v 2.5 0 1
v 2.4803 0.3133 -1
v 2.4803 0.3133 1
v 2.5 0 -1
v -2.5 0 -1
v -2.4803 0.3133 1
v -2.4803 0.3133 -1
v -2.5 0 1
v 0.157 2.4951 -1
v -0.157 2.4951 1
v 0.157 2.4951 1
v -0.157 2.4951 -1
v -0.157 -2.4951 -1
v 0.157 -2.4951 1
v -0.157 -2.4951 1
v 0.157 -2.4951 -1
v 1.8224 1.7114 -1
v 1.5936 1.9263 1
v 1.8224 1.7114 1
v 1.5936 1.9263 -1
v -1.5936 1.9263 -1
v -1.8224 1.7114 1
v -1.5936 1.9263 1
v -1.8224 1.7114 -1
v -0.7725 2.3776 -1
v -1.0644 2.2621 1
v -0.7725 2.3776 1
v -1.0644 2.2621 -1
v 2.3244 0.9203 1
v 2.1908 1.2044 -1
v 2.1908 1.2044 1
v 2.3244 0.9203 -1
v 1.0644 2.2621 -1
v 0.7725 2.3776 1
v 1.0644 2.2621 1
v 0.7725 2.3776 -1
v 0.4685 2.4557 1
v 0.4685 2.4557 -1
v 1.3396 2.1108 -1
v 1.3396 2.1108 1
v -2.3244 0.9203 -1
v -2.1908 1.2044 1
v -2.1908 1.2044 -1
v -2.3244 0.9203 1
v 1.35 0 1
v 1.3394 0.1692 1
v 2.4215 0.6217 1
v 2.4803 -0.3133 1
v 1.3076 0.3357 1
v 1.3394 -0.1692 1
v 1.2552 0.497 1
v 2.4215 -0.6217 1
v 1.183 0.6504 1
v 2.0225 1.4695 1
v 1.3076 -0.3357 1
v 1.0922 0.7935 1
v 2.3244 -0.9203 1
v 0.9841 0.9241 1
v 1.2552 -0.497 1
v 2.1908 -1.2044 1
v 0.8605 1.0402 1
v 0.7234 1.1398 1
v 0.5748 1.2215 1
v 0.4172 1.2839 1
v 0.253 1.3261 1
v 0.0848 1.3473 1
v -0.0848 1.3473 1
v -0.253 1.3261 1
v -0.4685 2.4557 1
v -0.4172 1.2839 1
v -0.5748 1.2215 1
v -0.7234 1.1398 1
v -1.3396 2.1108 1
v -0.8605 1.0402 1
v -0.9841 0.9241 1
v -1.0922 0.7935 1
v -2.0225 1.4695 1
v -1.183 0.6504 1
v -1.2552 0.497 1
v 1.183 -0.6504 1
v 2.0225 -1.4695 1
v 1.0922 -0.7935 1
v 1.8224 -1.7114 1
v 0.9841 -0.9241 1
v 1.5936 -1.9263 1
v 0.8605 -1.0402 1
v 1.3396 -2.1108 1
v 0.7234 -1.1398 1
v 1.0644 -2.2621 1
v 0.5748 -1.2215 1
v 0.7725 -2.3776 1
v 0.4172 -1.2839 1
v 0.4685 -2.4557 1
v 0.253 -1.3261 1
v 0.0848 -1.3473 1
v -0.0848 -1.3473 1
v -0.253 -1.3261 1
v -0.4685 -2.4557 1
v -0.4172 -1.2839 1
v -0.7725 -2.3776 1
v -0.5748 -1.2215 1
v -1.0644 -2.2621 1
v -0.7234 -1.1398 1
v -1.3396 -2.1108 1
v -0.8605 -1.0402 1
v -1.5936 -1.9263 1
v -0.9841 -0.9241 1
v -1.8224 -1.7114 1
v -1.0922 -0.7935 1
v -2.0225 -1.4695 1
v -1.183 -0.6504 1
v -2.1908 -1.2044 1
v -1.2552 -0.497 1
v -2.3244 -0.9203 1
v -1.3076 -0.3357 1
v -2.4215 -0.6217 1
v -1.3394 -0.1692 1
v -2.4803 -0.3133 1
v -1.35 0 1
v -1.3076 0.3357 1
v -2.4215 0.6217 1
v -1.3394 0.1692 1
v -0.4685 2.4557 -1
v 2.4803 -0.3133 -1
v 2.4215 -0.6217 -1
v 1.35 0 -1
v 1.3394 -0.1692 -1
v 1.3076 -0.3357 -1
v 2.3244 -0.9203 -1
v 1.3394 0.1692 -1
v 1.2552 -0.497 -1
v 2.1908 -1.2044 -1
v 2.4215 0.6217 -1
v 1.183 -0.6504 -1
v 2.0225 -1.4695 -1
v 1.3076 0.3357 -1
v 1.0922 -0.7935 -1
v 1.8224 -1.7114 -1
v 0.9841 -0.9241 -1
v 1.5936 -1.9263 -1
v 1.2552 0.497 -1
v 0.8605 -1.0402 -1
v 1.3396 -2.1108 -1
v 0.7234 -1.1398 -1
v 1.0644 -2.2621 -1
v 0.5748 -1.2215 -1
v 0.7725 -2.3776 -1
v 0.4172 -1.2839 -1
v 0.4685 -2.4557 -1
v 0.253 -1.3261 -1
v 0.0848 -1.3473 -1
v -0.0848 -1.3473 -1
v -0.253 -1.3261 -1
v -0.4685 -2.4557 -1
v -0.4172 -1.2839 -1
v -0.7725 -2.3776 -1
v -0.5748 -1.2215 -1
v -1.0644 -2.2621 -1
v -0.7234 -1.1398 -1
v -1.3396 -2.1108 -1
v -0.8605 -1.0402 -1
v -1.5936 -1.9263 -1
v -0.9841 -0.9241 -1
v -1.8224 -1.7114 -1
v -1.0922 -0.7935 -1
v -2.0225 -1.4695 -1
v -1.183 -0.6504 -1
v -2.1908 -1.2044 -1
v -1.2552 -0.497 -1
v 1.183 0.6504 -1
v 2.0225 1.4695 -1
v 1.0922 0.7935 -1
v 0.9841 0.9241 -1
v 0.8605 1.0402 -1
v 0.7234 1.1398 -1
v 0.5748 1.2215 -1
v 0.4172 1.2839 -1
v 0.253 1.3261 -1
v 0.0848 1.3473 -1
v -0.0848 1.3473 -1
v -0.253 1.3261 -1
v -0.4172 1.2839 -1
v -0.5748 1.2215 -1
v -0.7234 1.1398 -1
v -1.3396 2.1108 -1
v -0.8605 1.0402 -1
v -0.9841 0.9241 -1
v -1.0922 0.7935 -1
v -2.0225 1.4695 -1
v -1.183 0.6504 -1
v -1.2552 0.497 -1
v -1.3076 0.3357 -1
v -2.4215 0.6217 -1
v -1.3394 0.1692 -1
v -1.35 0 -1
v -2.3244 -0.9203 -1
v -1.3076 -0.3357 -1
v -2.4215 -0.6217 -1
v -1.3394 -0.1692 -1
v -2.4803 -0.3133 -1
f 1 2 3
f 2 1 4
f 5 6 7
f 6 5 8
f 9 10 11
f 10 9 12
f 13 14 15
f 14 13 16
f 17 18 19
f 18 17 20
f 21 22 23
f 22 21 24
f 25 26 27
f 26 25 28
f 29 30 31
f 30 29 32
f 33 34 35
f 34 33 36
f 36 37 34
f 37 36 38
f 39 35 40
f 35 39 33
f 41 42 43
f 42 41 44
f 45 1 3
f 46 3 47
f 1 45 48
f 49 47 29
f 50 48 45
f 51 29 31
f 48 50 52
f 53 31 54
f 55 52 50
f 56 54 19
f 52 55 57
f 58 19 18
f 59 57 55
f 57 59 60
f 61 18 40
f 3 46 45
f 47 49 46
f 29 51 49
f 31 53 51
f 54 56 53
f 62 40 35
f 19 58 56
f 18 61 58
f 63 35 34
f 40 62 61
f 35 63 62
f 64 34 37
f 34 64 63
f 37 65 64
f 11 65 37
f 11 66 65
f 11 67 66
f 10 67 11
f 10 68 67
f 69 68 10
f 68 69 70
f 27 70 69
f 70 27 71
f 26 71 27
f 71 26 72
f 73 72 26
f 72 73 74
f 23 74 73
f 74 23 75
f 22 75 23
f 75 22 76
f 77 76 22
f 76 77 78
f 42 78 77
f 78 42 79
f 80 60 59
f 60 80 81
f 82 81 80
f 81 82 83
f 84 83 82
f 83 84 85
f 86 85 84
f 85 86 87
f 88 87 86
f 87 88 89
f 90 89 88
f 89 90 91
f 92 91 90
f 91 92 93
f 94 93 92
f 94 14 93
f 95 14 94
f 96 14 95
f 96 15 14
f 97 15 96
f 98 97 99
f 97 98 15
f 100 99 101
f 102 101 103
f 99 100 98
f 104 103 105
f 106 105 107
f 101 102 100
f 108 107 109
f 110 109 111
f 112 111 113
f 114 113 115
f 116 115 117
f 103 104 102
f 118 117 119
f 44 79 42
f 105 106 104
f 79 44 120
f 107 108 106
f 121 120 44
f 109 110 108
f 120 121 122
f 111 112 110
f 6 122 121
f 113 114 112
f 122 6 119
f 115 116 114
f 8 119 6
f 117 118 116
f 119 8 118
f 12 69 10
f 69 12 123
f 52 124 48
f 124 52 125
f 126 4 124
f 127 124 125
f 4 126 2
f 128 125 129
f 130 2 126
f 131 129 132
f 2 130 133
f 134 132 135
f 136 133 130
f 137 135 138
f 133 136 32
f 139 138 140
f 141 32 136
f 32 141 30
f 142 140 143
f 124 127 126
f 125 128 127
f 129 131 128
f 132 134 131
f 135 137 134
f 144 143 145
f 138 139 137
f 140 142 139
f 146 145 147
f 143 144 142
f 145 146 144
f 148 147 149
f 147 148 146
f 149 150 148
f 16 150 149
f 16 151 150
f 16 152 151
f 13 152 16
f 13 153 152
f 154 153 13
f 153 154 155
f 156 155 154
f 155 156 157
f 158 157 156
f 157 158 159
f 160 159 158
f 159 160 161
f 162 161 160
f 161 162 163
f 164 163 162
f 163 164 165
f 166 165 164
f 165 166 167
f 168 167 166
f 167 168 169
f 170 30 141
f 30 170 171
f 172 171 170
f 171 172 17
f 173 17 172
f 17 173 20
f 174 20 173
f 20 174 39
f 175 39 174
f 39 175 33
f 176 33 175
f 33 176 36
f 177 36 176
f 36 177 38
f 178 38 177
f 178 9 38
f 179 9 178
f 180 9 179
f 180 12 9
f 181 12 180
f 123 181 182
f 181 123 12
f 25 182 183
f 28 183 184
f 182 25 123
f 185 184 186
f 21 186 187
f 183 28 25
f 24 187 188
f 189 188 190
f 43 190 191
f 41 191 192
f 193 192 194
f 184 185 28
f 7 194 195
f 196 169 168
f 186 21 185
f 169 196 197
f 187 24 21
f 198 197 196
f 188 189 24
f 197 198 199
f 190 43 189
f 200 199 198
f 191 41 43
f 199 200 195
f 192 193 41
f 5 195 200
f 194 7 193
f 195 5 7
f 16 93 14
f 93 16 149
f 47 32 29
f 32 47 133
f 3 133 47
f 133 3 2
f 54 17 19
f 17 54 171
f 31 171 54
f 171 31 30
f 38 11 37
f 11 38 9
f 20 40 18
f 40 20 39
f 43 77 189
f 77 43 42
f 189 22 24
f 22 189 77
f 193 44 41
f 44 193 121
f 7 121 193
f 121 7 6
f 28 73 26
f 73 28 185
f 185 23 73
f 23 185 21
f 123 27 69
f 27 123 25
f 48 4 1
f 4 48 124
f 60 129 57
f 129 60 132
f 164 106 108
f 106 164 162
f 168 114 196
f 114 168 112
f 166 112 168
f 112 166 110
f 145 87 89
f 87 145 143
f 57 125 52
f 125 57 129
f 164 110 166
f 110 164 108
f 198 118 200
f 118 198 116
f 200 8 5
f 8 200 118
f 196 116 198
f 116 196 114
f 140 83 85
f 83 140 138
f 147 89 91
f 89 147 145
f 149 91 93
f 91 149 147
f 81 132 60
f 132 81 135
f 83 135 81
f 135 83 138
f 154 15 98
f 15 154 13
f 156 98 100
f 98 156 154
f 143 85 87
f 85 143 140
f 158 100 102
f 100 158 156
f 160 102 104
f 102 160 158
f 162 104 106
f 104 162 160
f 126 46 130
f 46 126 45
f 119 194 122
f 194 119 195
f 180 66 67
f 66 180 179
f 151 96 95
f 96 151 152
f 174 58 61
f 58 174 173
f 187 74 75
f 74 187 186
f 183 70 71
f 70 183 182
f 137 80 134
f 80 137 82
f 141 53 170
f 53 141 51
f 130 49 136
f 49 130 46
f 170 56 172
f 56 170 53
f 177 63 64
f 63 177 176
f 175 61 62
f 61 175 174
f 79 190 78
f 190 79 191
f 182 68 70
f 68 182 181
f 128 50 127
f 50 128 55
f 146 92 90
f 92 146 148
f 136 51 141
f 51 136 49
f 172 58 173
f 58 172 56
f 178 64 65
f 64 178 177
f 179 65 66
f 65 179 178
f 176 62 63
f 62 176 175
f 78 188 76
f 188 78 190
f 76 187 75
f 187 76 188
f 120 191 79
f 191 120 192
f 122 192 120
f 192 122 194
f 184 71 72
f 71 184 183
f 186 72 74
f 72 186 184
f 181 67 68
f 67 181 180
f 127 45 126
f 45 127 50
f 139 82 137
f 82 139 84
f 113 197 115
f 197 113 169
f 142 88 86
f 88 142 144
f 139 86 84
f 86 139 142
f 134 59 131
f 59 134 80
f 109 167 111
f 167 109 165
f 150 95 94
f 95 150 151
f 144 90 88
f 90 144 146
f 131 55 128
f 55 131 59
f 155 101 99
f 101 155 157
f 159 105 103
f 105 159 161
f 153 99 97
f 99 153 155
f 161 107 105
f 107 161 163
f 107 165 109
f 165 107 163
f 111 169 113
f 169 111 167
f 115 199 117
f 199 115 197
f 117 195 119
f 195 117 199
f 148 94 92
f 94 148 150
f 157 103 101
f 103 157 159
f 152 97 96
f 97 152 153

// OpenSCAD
$fn = 50;


difference() {
	union() {
		translate(v = [0, 0, -1.0000000000]) {
			cylinder(h = 2, r = 2.5000000000);
		}
	}
	union() {
		translate(v = [0, 0, -100.0000000000]) {
			cylinder(h = 200, r = 1.3500000000);
		}
	}
}
